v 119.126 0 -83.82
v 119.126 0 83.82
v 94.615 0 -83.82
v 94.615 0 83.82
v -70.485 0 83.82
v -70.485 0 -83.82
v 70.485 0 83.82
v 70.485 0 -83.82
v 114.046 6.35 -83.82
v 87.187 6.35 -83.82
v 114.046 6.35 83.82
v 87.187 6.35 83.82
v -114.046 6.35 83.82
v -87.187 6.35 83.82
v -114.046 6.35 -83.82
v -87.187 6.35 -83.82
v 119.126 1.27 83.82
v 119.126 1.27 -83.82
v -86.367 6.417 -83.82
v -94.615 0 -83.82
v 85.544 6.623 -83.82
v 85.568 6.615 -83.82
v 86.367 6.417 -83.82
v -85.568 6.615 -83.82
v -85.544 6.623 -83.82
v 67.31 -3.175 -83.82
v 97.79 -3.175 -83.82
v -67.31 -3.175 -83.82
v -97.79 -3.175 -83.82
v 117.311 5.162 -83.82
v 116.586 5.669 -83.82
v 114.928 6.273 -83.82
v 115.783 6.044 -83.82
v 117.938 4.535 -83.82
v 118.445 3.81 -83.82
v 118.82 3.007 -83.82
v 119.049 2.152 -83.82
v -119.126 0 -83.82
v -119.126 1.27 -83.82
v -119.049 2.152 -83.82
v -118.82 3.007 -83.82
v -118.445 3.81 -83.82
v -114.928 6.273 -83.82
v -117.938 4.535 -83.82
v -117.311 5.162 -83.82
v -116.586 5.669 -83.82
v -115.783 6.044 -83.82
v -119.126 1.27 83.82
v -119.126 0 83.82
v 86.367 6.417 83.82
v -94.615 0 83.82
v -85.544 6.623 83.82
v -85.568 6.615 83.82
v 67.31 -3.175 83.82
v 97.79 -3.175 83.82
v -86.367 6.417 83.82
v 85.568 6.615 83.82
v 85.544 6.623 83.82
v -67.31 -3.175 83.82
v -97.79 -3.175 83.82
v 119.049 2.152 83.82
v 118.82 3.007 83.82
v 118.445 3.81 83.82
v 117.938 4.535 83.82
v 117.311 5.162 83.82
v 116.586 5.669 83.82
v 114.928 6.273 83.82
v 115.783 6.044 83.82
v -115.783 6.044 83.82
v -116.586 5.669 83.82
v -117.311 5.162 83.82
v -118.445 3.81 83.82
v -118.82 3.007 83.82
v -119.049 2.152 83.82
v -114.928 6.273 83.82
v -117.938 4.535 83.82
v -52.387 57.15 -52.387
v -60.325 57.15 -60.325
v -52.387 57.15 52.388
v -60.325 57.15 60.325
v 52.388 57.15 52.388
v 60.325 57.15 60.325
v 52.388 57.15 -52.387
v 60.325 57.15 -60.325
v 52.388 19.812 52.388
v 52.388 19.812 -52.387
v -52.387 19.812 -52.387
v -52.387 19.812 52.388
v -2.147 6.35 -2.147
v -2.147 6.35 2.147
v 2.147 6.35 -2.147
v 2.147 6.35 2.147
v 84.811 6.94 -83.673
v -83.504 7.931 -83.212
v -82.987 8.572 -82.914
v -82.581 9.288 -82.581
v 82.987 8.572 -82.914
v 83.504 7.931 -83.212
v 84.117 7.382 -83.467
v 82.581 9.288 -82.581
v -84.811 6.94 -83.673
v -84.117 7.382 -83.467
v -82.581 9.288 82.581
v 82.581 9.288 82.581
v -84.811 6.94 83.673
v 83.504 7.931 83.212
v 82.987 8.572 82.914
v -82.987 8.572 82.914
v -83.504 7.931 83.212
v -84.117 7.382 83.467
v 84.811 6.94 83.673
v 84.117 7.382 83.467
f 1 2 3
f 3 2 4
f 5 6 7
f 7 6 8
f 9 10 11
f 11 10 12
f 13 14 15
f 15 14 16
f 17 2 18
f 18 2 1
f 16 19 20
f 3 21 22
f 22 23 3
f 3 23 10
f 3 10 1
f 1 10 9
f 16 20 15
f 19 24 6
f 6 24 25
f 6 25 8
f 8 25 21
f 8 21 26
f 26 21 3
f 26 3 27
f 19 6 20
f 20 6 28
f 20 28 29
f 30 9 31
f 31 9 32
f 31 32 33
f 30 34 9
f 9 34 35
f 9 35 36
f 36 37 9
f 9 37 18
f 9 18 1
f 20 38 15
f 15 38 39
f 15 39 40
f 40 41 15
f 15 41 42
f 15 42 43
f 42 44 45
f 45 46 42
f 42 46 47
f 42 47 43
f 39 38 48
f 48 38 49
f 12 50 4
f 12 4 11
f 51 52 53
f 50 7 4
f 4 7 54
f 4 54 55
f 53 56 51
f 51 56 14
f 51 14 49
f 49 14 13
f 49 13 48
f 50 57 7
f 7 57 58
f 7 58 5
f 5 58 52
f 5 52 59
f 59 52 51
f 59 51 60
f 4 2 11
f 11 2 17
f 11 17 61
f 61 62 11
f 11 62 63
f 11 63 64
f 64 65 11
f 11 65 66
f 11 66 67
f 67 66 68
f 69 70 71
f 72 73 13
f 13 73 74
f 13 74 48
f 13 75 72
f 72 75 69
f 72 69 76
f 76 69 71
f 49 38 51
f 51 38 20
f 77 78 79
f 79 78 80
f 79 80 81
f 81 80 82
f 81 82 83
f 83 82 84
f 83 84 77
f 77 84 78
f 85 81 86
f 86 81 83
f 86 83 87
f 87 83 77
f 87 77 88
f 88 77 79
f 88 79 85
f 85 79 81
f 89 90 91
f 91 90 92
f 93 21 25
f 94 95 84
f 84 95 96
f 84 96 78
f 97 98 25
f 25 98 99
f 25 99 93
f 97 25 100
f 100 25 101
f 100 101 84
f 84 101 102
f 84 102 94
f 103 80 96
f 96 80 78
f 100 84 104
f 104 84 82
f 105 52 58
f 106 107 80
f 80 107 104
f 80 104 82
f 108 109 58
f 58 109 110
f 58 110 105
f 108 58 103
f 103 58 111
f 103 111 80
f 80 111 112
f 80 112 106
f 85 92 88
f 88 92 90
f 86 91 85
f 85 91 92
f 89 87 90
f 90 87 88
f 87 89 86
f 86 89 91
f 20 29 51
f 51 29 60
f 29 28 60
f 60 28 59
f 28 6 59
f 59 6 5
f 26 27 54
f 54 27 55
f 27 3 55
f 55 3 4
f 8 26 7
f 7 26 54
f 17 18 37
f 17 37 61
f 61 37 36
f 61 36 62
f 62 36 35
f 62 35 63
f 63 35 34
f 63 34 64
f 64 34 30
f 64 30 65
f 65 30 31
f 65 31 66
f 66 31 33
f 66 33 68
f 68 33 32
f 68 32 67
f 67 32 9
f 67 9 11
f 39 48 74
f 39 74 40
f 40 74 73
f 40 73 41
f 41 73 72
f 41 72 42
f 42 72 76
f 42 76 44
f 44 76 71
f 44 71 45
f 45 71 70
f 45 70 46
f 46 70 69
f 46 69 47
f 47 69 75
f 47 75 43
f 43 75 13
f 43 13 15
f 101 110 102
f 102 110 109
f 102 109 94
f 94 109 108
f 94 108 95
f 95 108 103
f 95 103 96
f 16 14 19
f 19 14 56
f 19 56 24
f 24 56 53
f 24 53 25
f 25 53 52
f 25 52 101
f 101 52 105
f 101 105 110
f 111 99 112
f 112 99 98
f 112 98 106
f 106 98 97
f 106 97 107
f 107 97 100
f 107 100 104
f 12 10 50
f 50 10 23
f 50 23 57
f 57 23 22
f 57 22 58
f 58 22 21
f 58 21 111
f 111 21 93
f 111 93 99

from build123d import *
from OCP.BRepFilletAPI import BRepFilletAPI_MakeChamfer

# Parameters (mm, degrees)
SKETCH1_W           = 238.252
SKETCH1_H           = 167.64
BOSS_EXTRUDE1_DEPTH = 6.35
SKETCH2_W           = 120.65
SKETCH2_H           = 120.65
SKETCH2_W_2         = 104.775
SKETCH2_H_2         = 104.775
BOSS_EXTRUDE2_DEPTH = 50.8
CHAMFER1_SIZE       = 23.622
CHAMFER1_SIZE_2     = 50.8
CHAMFER2_SIZE       = 13.462
CHAMFER2_SIZE2      = 50.240867971
BOSS_EXTRUDE3_DEPTH = 167.64
FILLET1_R           = 5.08


with BuildPart() as part:
    # Sketch1 → Boss-Extrude1 (new body)
    with BuildSketch(Plane(origin=(0, 0, 0), x_dir=(1, 0, 0), z_dir=(0, 1, 0))):
        Rectangle(SKETCH1_W, SKETCH1_H)
    extrude(amount=BOSS_EXTRUDE1_DEPTH)

    # Sketch2 → Boss-Extrude2 (add)
    with BuildSketch(Plane(origin=(0, 6.35, 0), x_dir=(1, 0, 0), z_dir=(0, 1, 0))):
        Rectangle(SKETCH2_W, SKETCH2_H)
        Rectangle(SKETCH2_W_2, SKETCH2_H_2, mode=Mode.SUBTRACT)
    extrude(amount=BOSS_EXTRUDE2_DEPTH)

    # Chamfer1
    # the kernel refuses this chamfer: 50.8, 23.622 mm, written as the material it adds along each edge
    with BuildSketch(Plane(origin=(60.325, 6.35, 60.325), x_dir=(0, -0.07505854445715336, 0.9971791287948087), z_dir=(-1, 0, 0))) as chamfer1_piece_1_section:
        Polygon((CHAMFER1_SIZE * 0.997179128795, CHAMFER1_SIZE * 0.0750585444572), (-CHAMFER1_SIZE_2 * 0.0750585444572, CHAMFER1_SIZE_2 * 0.997179128795), (0, 0), align=None)
    chamfer1_piece_1 = extrude(amount=120.65, mode=Mode.PRIVATE)
    chamfer1_piece_1 = split(chamfer1_piece_1, bisect_by=Plane(origin=(0, 23.458170977, 83.82), z_dir=(0, 0, -1)), keep=Keep.TOP, mode=Mode.PRIVATE)
    chamfer1_piece_1 = split(chamfer1_piece_1, bisect_by=Plane(origin=(0, 57.15, 67.75803998), z_dir=(0, -1, 0)), keep=Keep.TOP, mode=Mode.PRIVATE)
    add(chamfer1_piece_1)
    with BuildSketch(Plane(origin=(60.325, 6.35, -60.325), x_dir=(0.9971791287948087, -0.07505854445715335, 0), z_dir=(0, 0, 1))) as chamfer1_piece_2_section:
        Polygon((CHAMFER1_SIZE * 0.997179128795, CHAMFER1_SIZE * 0.0750585444572), (-CHAMFER1_SIZE_2 * 0.0750585444572, CHAMFER1_SIZE_2 * 0.997179128795), (0, 0), align=None)
    chamfer1_piece_2 = extrude(amount=120.65, mode=Mode.PRIVATE)
    chamfer1_piece_2 = split(chamfer1_piece_2, bisect_by=Plane(origin=(67.804180933, 57.15, 0), z_dir=(0, -1, 0)), keep=Keep.TOP, mode=Mode.PRIVATE)
    add(chamfer1_piece_2)
    with BuildSketch(Plane(origin=(-60.325, 6.35, 60.325), x_dir=(-0.9971791287948087, -0.07505854445715335, 0), z_dir=(0, 0, -1))) as chamfer1_piece_3_section:
        Polygon((CHAMFER1_SIZE * 0.997179128795, CHAMFER1_SIZE * 0.0750585444572), (-CHAMFER1_SIZE_2 * 0.0750585444572, CHAMFER1_SIZE_2 * 0.997179128795), (0, 0), align=None)
    chamfer1_piece_3 = extrude(amount=120.65, mode=Mode.PRIVATE)
    chamfer1_piece_3 = split(chamfer1_piece_3, bisect_by=Plane(origin=(-67.804180933, 57.15, 0), z_dir=(0, -1, 0)), keep=Keep.TOP, mode=Mode.PRIVATE)
    add(chamfer1_piece_3)
    with BuildSketch(Plane(origin=(-60.325, 6.35, -60.325), x_dir=(0, -0.07505854445715336, -0.9971791287948087), z_dir=(1, 0, 0))) as chamfer1_piece_4_section:
        Polygon((CHAMFER1_SIZE * 0.997179128795, CHAMFER1_SIZE * 0.0750585444572), (-CHAMFER1_SIZE_2 * 0.0750585444572, CHAMFER1_SIZE_2 * 0.997179128795), (0, 0), align=None)
    chamfer1_piece_4 = extrude(amount=120.65, mode=Mode.PRIVATE)
    chamfer1_piece_4 = split(chamfer1_piece_4, bisect_by=Plane(origin=(0, 23.458170977, -83.82), z_dir=(0, 0, 1)), keep=Keep.TOP, mode=Mode.PRIVATE)
    chamfer1_piece_4 = split(chamfer1_piece_4, bisect_by=Plane(origin=(0, 57.15, -67.75803998), z_dir=(0, -1, 0)), keep=Keep.TOP, mode=Mode.PRIVATE)
    add(chamfer1_piece_4)
    with BuildSketch(Plane(origin=(60.325, 6.35, -60.325), x_dir=(0.9971791287948087, -0.07505854445715335, 0), z_dir=(0, 0, 1))) as chamfer1_piece_5a_section:
        Polygon((CHAMFER1_SIZE * 0.997179128795, CHAMFER1_SIZE * 0.0750585444572), (-CHAMFER1_SIZE_2 * 0.0750585444572, CHAMFER1_SIZE_2 * 0.997179128795), (0, 0), align=None)
    chamfer1_piece_5a = extrude(amount=252.2737775, mode=Mode.PRIVATE)
    chamfer1_piece_5a = split(chamfer1_piece_5a, bisect_by=Plane(origin=(67.804180933, 23.405571351, 83.82), z_dir=(0, 0, -1)), keep=Keep.TOP, mode=Mode.PRIVATE)
    chamfer1_piece_5a = split(chamfer1_piece_5a, bisect_by=Plane(origin=(67.804180933, 23.405571351, 60.325), z_dir=(0, 0, 1)), keep=Keep.TOP, mode=Mode.PRIVATE)
    chamfer1_piece_5a = split(chamfer1_piece_5a, bisect_by=Plane(origin=(67.804180933, 57.15, 72.0725), z_dir=(0, -1, 0)), keep=Keep.TOP, mode=Mode.PRIVATE)
    with BuildSketch(Plane(origin=(191.9487775, 6.35, 60.325), x_dir=(0, -0.07505854445715336, 0.9971791287948087), z_dir=(-1, 0, 0))) as chamfer1_piece_5b_section:
        Polygon((CHAMFER1_SIZE * 0.997179128795, CHAMFER1_SIZE * 0.0750585444572), (-CHAMFER1_SIZE_2 * 0.0750585444572, CHAMFER1_SIZE_2 * 0.997179128795), (0, 0), align=None)
    chamfer1_piece_5b = extrude(amount=252.2737775, mode=Mode.PRIVATE)
    chamfer1_piece_5b = split(chamfer1_piece_5b, bisect_by=Plane(origin=(89.7255, 23.458170977, 83.82), z_dir=(0, 0, -1)), keep=Keep.TOP, mode=Mode.PRIVATE)
    chamfer1_piece_5b = split(chamfer1_piece_5b, bisect_by=Plane(origin=(119.126, 23.458170977, 67.75803998), z_dir=(-1, 0, 0)), keep=Keep.TOP, mode=Mode.PRIVATE)
    chamfer1_piece_5b = split(chamfer1_piece_5b, bisect_by=Plane(origin=(60.325, 23.458170977, 67.75803998), z_dir=(1, 0, 0)), keep=Keep.TOP, mode=Mode.PRIVATE)
    chamfer1_piece_5b = split(chamfer1_piece_5b, bisect_by=Plane(origin=(89.7255, 57.15, 67.75803998), z_dir=(0, -1, 0)), keep=Keep.TOP, mode=Mode.PRIVATE)
    chamfer1_piece_5 = chamfer1_piece_5a & chamfer1_piece_5b
    add(chamfer1_piece_5)
    with BuildSketch(Plane(origin=(-60.325, 6.35, 191.9487775), x_dir=(-0.9971791287948087, -0.07505854445715335, 0), z_dir=(0, 0, -1))) as chamfer1_piece_6a_section:
        Polygon((CHAMFER1_SIZE * 0.997179128795, CHAMFER1_SIZE * 0.0750585444572), (-CHAMFER1_SIZE_2 * 0.0750585444572, CHAMFER1_SIZE_2 * 0.997179128795), (0, 0), align=None)
    chamfer1_piece_6a = extrude(amount=252.2737775, mode=Mode.PRIVATE)
    chamfer1_piece_6a = split(chamfer1_piece_6a, bisect_by=Plane(origin=(-67.804180933, 23.405571351, 83.82), z_dir=(0, 0, -1)), keep=Keep.TOP, mode=Mode.PRIVATE)
    chamfer1_piece_6a = split(chamfer1_piece_6a, bisect_by=Plane(origin=(-67.804180933, 23.405571351, 60.325), z_dir=(0, 0, 1)), keep=Keep.TOP, mode=Mode.PRIVATE)
    chamfer1_piece_6a = split(chamfer1_piece_6a, bisect_by=Plane(origin=(-67.804180933, 57.15, 72.0725), z_dir=(0, -1, 0)), keep=Keep.TOP, mode=Mode.PRIVATE)
    with BuildSketch(Plane(origin=(60.325, 6.35, 60.325), x_dir=(0, -0.07505854445715336, 0.9971791287948087), z_dir=(-1, 0, 0))) as chamfer1_piece_6b_section:
        Polygon((CHAMFER1_SIZE * 0.997179128795, CHAMFER1_SIZE * 0.0750585444572), (-CHAMFER1_SIZE_2 * 0.0750585444572, CHAMFER1_SIZE_2 * 0.997179128795), (0, 0), align=None)
    chamfer1_piece_6b = extrude(amount=252.2737775, mode=Mode.PRIVATE)
    chamfer1_piece_6b = split(chamfer1_piece_6b, bisect_by=Plane(origin=(-89.7255, 23.458170977, 83.82), z_dir=(0, 0, -1)), keep=Keep.TOP, mode=Mode.PRIVATE)
    chamfer1_piece_6b = split(chamfer1_piece_6b, bisect_by=Plane(origin=(-119.126, 23.458170977, 67.75803998), z_dir=(1, 0, 0)), keep=Keep.TOP, mode=Mode.PRIVATE)
    chamfer1_piece_6b = split(chamfer1_piece_6b, bisect_by=Plane(origin=(-60.325, 23.458170977, 67.75803998), z_dir=(-1, 0, 0)), keep=Keep.TOP, mode=Mode.PRIVATE)
    chamfer1_piece_6b = split(chamfer1_piece_6b, bisect_by=Plane(origin=(-89.7255, 57.15, 67.75803998), z_dir=(0, -1, 0)), keep=Keep.TOP, mode=Mode.PRIVATE)
    chamfer1_piece_6 = chamfer1_piece_6a & chamfer1_piece_6b
    add(chamfer1_piece_6)
    with BuildSketch(Plane(origin=(60.325, 6.35, -191.9487775), x_dir=(0.9971791287948087, -0.07505854445715335, 0), z_dir=(0, 0, 1))) as chamfer1_piece_7a_section:
        Polygon((CHAMFER1_SIZE * 0.997179128795, CHAMFER1_SIZE * 0.0750585444572), (-CHAMFER1_SIZE_2 * 0.0750585444572, CHAMFER1_SIZE_2 * 0.997179128795), (0, 0), align=None)
    chamfer1_piece_7a = extrude(amount=252.2737775, mode=Mode.PRIVATE)
    chamfer1_piece_7a = split(chamfer1_piece_7a, bisect_by=Plane(origin=(67.804180933, 23.405571351, -83.82), z_dir=(0, 0, 1)), keep=Keep.TOP, mode=Mode.PRIVATE)
    chamfer1_piece_7a = split(chamfer1_piece_7a, bisect_by=Plane(origin=(67.804180933, 23.405571351, -60.325), z_dir=(0, 0, -1)), keep=Keep.TOP, mode=Mode.PRIVATE)
    chamfer1_piece_7a = split(chamfer1_piece_7a, bisect_by=Plane(origin=(67.804180933, 57.15, -72.0725), z_dir=(0, -1, 0)), keep=Keep.TOP, mode=Mode.PRIVATE)
    with BuildSketch(Plane(origin=(-60.325, 6.35, -60.325), x_dir=(0, -0.07505854445715336, -0.9971791287948087), z_dir=(1, 0, 0))) as chamfer1_piece_7b_section:
        Polygon((CHAMFER1_SIZE * 0.997179128795, CHAMFER1_SIZE * 0.0750585444572), (-CHAMFER1_SIZE_2 * 0.0750585444572, CHAMFER1_SIZE_2 * 0.997179128795), (0, 0), align=None)
    chamfer1_piece_7b = extrude(amount=252.2737775, mode=Mode.PRIVATE)
    chamfer1_piece_7b = split(chamfer1_piece_7b, bisect_by=Plane(origin=(119.126, 23.458170977, -67.75803998), z_dir=(-1, 0, 0)), keep=Keep.TOP, mode=Mode.PRIVATE)
    chamfer1_piece_7b = split(chamfer1_piece_7b, bisect_by=Plane(origin=(89.7255, 23.458170977, -83.82), z_dir=(0, 0, 1)), keep=Keep.TOP, mode=Mode.PRIVATE)
    chamfer1_piece_7b = split(chamfer1_piece_7b, bisect_by=Plane(origin=(60.325, 23.458170977, -67.75803998), z_dir=(1, 0, 0)), keep=Keep.TOP, mode=Mode.PRIVATE)
    chamfer1_piece_7b = split(chamfer1_piece_7b, bisect_by=Plane(origin=(89.7255, 57.15, -67.75803998), z_dir=(0, -1, 0)), keep=Keep.TOP, mode=Mode.PRIVATE)
    chamfer1_piece_7 = chamfer1_piece_7a & chamfer1_piece_7b
    add(chamfer1_piece_7)
    with BuildSketch(Plane(origin=(-191.9487775, 6.35, -60.325), x_dir=(0, -0.07505854445715336, -0.9971791287948087), z_dir=(1, 0, 0))) as chamfer1_piece_8a_section:
        Polygon((CHAMFER1_SIZE * 0.997179128795, CHAMFER1_SIZE * 0.0750585444572), (-CHAMFER1_SIZE_2 * 0.0750585444572, CHAMFER1_SIZE_2 * 0.997179128795), (0, 0), align=None)
    chamfer1_piece_8a = extrude(amount=252.2737775, mode=Mode.PRIVATE)
    chamfer1_piece_8a = split(chamfer1_piece_8a, bisect_by=Plane(origin=(-119.126, 23.458170977, -67.75803998), z_dir=(1, 0, 0)), keep=Keep.TOP, mode=Mode.PRIVATE)
    chamfer1_piece_8a = split(chamfer1_piece_8a, bisect_by=Plane(origin=(-89.7255, 23.458170977, -83.82), z_dir=(0, 0, 1)), keep=Keep.TOP, mode=Mode.PRIVATE)
    chamfer1_piece_8a = split(chamfer1_piece_8a, bisect_by=Plane(origin=(-60.325, 23.458170977, -67.75803998), z_dir=(-1, 0, 0)), keep=Keep.TOP, mode=Mode.PRIVATE)
    chamfer1_piece_8a = split(chamfer1_piece_8a, bisect_by=Plane(origin=(-89.7255, 57.15, -67.75803998), z_dir=(0, -1, 0)), keep=Keep.TOP, mode=Mode.PRIVATE)
    with BuildSketch(Plane(origin=(-60.325, 6.35, 60.325), x_dir=(-0.9971791287948087, -0.07505854445715335, 0), z_dir=(0, 0, -1))) as chamfer1_piece_8b_section:
        Polygon((CHAMFER1_SIZE * 0.997179128795, CHAMFER1_SIZE * 0.0750585444572), (-CHAMFER1_SIZE_2 * 0.0750585444572, CHAMFER1_SIZE_2 * 0.997179128795), (0, 0), align=None)
    chamfer1_piece_8b = extrude(amount=252.2737775, mode=Mode.PRIVATE)
    chamfer1_piece_8b = split(chamfer1_piece_8b, bisect_by=Plane(origin=(-67.804180933, 23.405571351, -83.82), z_dir=(0, 0, 1)), keep=Keep.TOP, mode=Mode.PRIVATE)
    chamfer1_piece_8b = split(chamfer1_piece_8b, bisect_by=Plane(origin=(-67.804180933, 23.405571351, -60.325), z_dir=(0, 0, -1)), keep=Keep.TOP, mode=Mode.PRIVATE)
    chamfer1_piece_8b = split(chamfer1_piece_8b, bisect_by=Plane(origin=(-67.804180933, 57.15, -72.0725), z_dir=(0, -1, 0)), keep=Keep.TOP, mode=Mode.PRIVATE)
    chamfer1_piece_8 = chamfer1_piece_8a & chamfer1_piece_8b
    add(chamfer1_piece_8)

    # Chamfer2: one chamfer whose edges measure the first distance from different faces: ONE call of the kernel's chamfer builder (chamfer() names one face for all edges)
    chamfer2_edges_1 = [part.edges().sort_by_distance(p)[0] for p in [
        (52.3875, 6.35, 0),
    ]]
    chamfer2_side_1 = [part.faces().sort_by_distance(p)[0] for p in [
        (52.3875, 31.75, 0),
    ]]
    chamfer2_edges_2 = [part.edges().sort_by_distance(p)[0] for p in [
        (0, 6.35, -52.3875),
    ]]
    chamfer2_side_2 = [part.faces().sort_by_distance(p)[0] for p in [
        (0, 31.75, -52.3875),
    ]]
    chamfer2_edges_3 = [part.edges().sort_by_distance(p)[0] for p in [
        (-52.3875, 6.35, 0),
    ]]
    chamfer2_side_3 = [part.faces().sort_by_distance(p)[0] for p in [
        (-52.3875, 31.75, 0),
    ]]
    chamfer2_edges_4 = [part.edges().sort_by_distance(p)[0] for p in [
        (0, 6.35, 52.3875),
    ]]
    chamfer2_side_4 = [part.faces().sort_by_distance(p)[0] for p in [
        (0, 31.75, 52.3875),
    ]]
    chamfer2 = BRepFilletAPI_MakeChamfer(part.part.solid().wrapped)
    for e in chamfer2_edges_1:
        chamfer2.Add(CHAMFER2_SIZE, CHAMFER2_SIZE2, e.wrapped, chamfer2_side_1[0].wrapped)  # the first distance lies on this face
    for e in chamfer2_edges_2:
        chamfer2.Add(CHAMFER2_SIZE, CHAMFER2_SIZE2, e.wrapped, chamfer2_side_2[0].wrapped)  # the first distance lies on this face
    for e in chamfer2_edges_3:
        chamfer2.Add(CHAMFER2_SIZE, CHAMFER2_SIZE2, e.wrapped, chamfer2_side_3[0].wrapped)  # the first distance lies on this face
    for e in chamfer2_edges_4:
        chamfer2.Add(CHAMFER2_SIZE, CHAMFER2_SIZE2, e.wrapped, chamfer2_side_4[0].wrapped)  # the first distance lies on this face
    add(Compound.cast(chamfer2.Shape()), mode=Mode.REPLACE)

    # Sketch3 → Boss-Extrude3 (add)
    with BuildSketch(Plane(origin=(0, 0, -83.82), x_dir=(-1, 0, 0), z_dir=(0, 0, -1))):
        Polygon((94.615, 0), (70.485, 0), (67.31, -3.175), (97.79, -3.175), align=None)
        Polygon((-67.31, -3.175), (-70.485, 0), (-94.615, 0), (-97.79, -3.175), align=None)
    extrude(amount=-BOSS_EXTRUDE3_DEPTH)

    # Fillet1
    # the kernel refuses this fillet: 5.08 mm, written as the material it adds along each edge
    with BuildSketch(Plane(origin=(-83.947, 6.35, -83.82), x_dir=(0.4216440631701671, 0.9067614261719298, 0), z_dir=(0, 0, 1))) as fillet1_piece_1_section:
        with BuildLine():
            CenterArc((FILLET1_R * 0.637825915546, FILLET1_R), FILLET1_R, 204.938427655, 65.061572345)
            Line((-FILLET1_R * 0.268935510626, FILLET1_R * 0.57835593683), (0, 0))
            Line((0, 0), (FILLET1_R * 0.637825915546, 0))
        make_face()
    fillet1_piece_1 = extrude(amount=167.64, mode=Mode.PRIVATE)
    fillet1_piece_1 = split(fillet1_piece_1, bisect_by=Plane(origin=(-84.357854202, 38.970175946, 68.778618185), z_dir=(0, -0.4216440631701673, -0.9067614261719298)), keep=Keep.TOP, mode=Mode.PRIVATE)
    fillet1_piece_1 = split(fillet1_piece_1, bisect_by=Plane(origin=(-84.357854202, 38.970175946, -68.778618185), z_dir=(0, -0.4216440631701673, 0.9067614261719298)), keep=Keep.TOP, mode=Mode.PRIVATE)
    add(fillet1_piece_1)
    with BuildSketch(Plane(origin=(83.947, 6.35, 83.82), x_dir=(-0.4216440631701671, 0.9067614261719298, 0), z_dir=(0, 0, -1))) as fillet1_piece_2_section:
        with BuildLine():
            CenterArc((FILLET1_R * 0.637825915546, FILLET1_R), FILLET1_R, 204.938427655, 65.061572345)
            Line((-FILLET1_R * 0.268935510626, FILLET1_R * 0.57835593683), (0, 0))
            Line((0, 0), (FILLET1_R * 0.637825915546, 0))
        make_face()
    fillet1_piece_2 = extrude(amount=167.64, mode=Mode.PRIVATE)
    fillet1_piece_2 = split(fillet1_piece_2, bisect_by=Plane(origin=(84.357854202, 38.970175946, 68.778618185), z_dir=(0, -0.4216440631701673, -0.9067614261719298)), keep=Keep.TOP, mode=Mode.PRIVATE)
    fillet1_piece_2 = split(fillet1_piece_2, bisect_by=Plane(origin=(84.357854202, 38.970175946, -68.778618185), z_dir=(0, -0.4216440631701673, 0.9067614261719298)), keep=Keep.TOP, mode=Mode.PRIVATE)
    add(fillet1_piece_2)
    # the kernel refuses this fillet: 5.08 mm, written as the material it takes off along each edge
    with BuildSketch(Plane(origin=(119.126, 6.35, 96.52), x_dir=(0, -1, 0), z_dir=(0, 0, -1)), Plane(origin=(-119.126, 6.35, -96.52), x_dir=(0, -1, 0), z_dir=(0, 0, 1))) as fillet1_2_piece_1:
        with BuildLine():
            CenterArc((FILLET1_R, FILLET1_R), FILLET1_R, 180, 90)
            Line((0, FILLET1_R), (0, 0))
            Line((0, 0), (FILLET1_R, 0))
        make_face()
    extrude(amount=193.04, mode=Mode.SUBTRACT)


solid = part.part
